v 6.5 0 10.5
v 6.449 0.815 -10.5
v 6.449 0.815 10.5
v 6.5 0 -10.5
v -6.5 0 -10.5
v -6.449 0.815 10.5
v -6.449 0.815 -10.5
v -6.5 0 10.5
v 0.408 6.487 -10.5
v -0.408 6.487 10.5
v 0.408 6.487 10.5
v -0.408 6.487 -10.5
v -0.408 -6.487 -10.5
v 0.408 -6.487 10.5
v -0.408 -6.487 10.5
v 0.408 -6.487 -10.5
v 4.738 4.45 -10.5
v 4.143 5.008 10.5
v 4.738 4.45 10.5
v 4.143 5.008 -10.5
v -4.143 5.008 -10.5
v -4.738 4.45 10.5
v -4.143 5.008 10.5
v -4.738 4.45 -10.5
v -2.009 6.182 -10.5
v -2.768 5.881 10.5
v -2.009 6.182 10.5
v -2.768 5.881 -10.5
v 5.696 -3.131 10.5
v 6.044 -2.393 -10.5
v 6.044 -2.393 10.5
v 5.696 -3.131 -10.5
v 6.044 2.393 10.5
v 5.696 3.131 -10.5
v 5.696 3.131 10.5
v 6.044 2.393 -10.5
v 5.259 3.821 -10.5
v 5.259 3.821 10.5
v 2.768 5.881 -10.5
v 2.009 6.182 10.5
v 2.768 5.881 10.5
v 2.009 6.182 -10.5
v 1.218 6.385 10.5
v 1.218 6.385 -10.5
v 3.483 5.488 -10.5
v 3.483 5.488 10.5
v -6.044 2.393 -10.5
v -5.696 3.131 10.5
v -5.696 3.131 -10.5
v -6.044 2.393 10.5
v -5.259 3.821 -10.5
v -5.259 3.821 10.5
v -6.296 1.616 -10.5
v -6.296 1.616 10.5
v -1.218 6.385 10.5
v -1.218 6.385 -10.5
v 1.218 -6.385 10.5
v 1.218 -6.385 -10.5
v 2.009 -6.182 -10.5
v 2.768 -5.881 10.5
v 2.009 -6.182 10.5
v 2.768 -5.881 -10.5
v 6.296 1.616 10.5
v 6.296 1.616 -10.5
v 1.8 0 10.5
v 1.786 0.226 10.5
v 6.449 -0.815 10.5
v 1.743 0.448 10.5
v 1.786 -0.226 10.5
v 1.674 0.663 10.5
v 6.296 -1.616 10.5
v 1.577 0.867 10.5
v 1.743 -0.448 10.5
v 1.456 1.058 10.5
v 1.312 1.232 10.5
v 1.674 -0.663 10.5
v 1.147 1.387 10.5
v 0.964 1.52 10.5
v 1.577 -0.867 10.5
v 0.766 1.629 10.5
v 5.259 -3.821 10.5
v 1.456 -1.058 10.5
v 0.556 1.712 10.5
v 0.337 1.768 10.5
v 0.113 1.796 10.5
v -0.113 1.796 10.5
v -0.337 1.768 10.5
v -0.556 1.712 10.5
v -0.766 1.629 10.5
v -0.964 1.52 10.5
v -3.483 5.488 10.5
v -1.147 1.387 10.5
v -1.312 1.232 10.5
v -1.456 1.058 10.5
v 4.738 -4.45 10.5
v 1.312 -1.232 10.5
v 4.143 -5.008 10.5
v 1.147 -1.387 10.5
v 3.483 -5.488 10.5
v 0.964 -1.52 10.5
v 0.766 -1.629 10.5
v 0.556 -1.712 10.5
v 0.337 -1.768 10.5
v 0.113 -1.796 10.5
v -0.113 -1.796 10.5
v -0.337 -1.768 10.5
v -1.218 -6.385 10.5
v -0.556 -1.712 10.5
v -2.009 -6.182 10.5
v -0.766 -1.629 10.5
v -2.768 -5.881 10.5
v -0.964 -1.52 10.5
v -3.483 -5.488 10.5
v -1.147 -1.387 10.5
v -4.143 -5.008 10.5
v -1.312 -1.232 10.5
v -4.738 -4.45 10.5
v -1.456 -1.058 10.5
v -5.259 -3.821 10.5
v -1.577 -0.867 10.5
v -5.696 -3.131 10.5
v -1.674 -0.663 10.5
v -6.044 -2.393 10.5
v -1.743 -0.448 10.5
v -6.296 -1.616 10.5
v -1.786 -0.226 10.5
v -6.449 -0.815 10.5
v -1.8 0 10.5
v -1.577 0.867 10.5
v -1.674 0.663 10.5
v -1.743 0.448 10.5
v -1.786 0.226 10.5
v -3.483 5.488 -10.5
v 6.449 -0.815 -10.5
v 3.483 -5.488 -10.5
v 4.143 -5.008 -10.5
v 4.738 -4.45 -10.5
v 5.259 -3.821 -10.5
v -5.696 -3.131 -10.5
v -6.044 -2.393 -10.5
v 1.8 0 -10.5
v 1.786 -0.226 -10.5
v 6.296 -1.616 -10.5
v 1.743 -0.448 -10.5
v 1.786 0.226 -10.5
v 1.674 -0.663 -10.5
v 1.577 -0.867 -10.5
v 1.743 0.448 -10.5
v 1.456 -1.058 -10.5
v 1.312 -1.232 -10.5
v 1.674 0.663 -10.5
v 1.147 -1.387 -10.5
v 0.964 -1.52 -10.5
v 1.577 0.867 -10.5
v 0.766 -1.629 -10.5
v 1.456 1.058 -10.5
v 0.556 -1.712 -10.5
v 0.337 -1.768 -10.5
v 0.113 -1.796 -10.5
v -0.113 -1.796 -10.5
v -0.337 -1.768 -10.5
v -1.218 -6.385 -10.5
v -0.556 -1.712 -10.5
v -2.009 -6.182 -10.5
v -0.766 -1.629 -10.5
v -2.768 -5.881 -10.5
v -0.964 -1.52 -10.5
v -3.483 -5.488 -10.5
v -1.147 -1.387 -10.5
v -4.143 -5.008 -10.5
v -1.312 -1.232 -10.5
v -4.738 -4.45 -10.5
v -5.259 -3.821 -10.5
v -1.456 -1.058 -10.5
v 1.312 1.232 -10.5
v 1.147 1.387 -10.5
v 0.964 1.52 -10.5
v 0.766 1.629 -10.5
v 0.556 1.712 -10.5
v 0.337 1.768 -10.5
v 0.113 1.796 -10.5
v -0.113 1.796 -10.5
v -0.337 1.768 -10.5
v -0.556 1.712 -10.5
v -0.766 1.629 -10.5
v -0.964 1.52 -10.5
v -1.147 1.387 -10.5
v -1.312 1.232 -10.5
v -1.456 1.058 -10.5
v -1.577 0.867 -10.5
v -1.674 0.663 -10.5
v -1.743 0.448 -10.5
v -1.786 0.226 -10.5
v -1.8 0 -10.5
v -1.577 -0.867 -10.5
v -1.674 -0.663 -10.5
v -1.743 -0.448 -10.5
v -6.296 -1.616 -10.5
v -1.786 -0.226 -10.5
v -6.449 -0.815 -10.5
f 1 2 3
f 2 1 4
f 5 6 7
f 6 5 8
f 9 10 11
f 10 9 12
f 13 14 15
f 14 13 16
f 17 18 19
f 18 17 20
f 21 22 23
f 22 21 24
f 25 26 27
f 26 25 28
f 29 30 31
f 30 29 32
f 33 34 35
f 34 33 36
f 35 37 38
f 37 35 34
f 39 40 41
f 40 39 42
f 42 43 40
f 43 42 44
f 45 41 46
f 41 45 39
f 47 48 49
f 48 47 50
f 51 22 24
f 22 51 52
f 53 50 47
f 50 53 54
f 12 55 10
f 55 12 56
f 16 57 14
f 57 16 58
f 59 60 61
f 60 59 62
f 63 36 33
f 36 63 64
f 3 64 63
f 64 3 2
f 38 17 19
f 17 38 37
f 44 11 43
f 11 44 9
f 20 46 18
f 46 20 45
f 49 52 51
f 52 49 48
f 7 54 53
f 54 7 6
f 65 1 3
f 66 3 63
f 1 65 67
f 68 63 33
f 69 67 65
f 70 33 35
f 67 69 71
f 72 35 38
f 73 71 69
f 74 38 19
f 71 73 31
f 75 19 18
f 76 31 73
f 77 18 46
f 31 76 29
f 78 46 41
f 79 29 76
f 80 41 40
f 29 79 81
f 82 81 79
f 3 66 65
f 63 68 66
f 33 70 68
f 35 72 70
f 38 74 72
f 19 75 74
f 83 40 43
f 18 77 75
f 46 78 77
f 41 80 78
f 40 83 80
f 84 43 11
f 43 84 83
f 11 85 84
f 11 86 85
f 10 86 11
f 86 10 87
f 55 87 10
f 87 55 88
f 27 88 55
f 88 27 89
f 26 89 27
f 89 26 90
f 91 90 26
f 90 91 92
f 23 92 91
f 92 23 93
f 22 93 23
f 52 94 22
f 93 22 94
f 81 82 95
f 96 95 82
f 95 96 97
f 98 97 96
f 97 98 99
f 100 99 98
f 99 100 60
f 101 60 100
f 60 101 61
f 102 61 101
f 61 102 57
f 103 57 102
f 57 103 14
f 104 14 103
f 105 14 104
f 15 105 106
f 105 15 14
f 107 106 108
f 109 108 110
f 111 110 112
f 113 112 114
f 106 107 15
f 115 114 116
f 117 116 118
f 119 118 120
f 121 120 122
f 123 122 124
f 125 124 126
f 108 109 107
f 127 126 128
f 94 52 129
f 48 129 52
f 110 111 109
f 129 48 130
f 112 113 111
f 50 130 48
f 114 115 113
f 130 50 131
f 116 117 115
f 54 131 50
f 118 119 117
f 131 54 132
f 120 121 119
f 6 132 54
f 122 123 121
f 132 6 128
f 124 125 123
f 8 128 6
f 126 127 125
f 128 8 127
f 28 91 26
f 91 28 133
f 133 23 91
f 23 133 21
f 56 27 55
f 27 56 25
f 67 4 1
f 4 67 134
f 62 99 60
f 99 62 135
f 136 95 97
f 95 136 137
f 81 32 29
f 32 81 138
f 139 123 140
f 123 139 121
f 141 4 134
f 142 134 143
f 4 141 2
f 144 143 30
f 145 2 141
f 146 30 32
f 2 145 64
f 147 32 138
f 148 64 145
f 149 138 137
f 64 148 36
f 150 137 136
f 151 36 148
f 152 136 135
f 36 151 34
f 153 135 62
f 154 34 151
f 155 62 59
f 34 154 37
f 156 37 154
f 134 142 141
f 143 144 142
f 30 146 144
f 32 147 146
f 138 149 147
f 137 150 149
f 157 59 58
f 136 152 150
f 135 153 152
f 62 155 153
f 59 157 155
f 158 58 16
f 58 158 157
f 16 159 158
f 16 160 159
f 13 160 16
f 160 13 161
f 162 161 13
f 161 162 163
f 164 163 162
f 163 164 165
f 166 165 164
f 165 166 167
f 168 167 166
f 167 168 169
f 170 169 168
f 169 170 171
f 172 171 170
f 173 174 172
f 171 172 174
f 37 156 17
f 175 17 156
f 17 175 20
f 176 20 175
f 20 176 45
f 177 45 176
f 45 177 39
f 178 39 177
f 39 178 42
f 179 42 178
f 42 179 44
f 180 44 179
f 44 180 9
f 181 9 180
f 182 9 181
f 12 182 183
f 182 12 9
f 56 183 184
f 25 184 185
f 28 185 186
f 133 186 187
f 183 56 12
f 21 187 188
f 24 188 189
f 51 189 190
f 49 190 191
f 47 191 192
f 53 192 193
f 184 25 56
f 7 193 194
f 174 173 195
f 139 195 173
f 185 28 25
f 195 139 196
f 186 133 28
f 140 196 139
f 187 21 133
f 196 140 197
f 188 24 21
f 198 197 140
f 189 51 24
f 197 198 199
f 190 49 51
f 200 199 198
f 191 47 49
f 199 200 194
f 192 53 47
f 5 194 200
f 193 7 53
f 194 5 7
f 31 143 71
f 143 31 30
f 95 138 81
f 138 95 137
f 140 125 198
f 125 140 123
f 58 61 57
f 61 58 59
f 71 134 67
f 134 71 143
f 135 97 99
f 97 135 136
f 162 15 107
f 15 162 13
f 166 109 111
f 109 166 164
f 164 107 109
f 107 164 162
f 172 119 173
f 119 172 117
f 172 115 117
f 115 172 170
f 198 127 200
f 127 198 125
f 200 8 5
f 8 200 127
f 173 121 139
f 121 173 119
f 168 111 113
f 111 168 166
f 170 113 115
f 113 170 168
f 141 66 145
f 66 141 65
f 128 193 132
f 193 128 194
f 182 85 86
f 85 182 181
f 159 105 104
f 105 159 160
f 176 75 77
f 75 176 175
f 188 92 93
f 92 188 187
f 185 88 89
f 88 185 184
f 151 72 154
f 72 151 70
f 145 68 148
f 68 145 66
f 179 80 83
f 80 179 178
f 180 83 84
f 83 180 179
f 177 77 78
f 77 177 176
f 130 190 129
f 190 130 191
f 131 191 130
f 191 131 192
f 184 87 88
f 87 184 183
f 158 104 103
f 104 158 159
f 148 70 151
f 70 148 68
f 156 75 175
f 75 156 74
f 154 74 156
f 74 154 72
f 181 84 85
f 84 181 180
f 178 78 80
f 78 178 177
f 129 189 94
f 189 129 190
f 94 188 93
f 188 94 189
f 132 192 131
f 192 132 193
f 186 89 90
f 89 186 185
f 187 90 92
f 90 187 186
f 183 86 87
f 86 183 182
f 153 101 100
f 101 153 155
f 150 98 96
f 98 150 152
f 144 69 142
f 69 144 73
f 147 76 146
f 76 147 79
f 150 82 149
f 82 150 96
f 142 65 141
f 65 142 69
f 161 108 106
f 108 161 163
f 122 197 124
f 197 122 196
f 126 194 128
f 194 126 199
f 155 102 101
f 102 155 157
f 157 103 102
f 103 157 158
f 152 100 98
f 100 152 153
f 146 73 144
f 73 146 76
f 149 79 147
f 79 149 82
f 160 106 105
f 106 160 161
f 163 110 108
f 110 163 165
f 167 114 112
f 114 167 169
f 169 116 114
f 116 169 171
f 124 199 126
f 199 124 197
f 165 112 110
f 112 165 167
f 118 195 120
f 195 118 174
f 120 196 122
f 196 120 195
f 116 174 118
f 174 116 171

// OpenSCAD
$fn = 50;


difference() {
	union() {
		translate(v = [0, 0, -10.5000000000]) {
			cylinder(h = 21, r = 6.5000000000);
		}
	}
	union() {
		translate(v = [0, 0, -100.0000000000]) {
			cylinder(h = 200, r = 1.8000000000);
		}
	}
}
